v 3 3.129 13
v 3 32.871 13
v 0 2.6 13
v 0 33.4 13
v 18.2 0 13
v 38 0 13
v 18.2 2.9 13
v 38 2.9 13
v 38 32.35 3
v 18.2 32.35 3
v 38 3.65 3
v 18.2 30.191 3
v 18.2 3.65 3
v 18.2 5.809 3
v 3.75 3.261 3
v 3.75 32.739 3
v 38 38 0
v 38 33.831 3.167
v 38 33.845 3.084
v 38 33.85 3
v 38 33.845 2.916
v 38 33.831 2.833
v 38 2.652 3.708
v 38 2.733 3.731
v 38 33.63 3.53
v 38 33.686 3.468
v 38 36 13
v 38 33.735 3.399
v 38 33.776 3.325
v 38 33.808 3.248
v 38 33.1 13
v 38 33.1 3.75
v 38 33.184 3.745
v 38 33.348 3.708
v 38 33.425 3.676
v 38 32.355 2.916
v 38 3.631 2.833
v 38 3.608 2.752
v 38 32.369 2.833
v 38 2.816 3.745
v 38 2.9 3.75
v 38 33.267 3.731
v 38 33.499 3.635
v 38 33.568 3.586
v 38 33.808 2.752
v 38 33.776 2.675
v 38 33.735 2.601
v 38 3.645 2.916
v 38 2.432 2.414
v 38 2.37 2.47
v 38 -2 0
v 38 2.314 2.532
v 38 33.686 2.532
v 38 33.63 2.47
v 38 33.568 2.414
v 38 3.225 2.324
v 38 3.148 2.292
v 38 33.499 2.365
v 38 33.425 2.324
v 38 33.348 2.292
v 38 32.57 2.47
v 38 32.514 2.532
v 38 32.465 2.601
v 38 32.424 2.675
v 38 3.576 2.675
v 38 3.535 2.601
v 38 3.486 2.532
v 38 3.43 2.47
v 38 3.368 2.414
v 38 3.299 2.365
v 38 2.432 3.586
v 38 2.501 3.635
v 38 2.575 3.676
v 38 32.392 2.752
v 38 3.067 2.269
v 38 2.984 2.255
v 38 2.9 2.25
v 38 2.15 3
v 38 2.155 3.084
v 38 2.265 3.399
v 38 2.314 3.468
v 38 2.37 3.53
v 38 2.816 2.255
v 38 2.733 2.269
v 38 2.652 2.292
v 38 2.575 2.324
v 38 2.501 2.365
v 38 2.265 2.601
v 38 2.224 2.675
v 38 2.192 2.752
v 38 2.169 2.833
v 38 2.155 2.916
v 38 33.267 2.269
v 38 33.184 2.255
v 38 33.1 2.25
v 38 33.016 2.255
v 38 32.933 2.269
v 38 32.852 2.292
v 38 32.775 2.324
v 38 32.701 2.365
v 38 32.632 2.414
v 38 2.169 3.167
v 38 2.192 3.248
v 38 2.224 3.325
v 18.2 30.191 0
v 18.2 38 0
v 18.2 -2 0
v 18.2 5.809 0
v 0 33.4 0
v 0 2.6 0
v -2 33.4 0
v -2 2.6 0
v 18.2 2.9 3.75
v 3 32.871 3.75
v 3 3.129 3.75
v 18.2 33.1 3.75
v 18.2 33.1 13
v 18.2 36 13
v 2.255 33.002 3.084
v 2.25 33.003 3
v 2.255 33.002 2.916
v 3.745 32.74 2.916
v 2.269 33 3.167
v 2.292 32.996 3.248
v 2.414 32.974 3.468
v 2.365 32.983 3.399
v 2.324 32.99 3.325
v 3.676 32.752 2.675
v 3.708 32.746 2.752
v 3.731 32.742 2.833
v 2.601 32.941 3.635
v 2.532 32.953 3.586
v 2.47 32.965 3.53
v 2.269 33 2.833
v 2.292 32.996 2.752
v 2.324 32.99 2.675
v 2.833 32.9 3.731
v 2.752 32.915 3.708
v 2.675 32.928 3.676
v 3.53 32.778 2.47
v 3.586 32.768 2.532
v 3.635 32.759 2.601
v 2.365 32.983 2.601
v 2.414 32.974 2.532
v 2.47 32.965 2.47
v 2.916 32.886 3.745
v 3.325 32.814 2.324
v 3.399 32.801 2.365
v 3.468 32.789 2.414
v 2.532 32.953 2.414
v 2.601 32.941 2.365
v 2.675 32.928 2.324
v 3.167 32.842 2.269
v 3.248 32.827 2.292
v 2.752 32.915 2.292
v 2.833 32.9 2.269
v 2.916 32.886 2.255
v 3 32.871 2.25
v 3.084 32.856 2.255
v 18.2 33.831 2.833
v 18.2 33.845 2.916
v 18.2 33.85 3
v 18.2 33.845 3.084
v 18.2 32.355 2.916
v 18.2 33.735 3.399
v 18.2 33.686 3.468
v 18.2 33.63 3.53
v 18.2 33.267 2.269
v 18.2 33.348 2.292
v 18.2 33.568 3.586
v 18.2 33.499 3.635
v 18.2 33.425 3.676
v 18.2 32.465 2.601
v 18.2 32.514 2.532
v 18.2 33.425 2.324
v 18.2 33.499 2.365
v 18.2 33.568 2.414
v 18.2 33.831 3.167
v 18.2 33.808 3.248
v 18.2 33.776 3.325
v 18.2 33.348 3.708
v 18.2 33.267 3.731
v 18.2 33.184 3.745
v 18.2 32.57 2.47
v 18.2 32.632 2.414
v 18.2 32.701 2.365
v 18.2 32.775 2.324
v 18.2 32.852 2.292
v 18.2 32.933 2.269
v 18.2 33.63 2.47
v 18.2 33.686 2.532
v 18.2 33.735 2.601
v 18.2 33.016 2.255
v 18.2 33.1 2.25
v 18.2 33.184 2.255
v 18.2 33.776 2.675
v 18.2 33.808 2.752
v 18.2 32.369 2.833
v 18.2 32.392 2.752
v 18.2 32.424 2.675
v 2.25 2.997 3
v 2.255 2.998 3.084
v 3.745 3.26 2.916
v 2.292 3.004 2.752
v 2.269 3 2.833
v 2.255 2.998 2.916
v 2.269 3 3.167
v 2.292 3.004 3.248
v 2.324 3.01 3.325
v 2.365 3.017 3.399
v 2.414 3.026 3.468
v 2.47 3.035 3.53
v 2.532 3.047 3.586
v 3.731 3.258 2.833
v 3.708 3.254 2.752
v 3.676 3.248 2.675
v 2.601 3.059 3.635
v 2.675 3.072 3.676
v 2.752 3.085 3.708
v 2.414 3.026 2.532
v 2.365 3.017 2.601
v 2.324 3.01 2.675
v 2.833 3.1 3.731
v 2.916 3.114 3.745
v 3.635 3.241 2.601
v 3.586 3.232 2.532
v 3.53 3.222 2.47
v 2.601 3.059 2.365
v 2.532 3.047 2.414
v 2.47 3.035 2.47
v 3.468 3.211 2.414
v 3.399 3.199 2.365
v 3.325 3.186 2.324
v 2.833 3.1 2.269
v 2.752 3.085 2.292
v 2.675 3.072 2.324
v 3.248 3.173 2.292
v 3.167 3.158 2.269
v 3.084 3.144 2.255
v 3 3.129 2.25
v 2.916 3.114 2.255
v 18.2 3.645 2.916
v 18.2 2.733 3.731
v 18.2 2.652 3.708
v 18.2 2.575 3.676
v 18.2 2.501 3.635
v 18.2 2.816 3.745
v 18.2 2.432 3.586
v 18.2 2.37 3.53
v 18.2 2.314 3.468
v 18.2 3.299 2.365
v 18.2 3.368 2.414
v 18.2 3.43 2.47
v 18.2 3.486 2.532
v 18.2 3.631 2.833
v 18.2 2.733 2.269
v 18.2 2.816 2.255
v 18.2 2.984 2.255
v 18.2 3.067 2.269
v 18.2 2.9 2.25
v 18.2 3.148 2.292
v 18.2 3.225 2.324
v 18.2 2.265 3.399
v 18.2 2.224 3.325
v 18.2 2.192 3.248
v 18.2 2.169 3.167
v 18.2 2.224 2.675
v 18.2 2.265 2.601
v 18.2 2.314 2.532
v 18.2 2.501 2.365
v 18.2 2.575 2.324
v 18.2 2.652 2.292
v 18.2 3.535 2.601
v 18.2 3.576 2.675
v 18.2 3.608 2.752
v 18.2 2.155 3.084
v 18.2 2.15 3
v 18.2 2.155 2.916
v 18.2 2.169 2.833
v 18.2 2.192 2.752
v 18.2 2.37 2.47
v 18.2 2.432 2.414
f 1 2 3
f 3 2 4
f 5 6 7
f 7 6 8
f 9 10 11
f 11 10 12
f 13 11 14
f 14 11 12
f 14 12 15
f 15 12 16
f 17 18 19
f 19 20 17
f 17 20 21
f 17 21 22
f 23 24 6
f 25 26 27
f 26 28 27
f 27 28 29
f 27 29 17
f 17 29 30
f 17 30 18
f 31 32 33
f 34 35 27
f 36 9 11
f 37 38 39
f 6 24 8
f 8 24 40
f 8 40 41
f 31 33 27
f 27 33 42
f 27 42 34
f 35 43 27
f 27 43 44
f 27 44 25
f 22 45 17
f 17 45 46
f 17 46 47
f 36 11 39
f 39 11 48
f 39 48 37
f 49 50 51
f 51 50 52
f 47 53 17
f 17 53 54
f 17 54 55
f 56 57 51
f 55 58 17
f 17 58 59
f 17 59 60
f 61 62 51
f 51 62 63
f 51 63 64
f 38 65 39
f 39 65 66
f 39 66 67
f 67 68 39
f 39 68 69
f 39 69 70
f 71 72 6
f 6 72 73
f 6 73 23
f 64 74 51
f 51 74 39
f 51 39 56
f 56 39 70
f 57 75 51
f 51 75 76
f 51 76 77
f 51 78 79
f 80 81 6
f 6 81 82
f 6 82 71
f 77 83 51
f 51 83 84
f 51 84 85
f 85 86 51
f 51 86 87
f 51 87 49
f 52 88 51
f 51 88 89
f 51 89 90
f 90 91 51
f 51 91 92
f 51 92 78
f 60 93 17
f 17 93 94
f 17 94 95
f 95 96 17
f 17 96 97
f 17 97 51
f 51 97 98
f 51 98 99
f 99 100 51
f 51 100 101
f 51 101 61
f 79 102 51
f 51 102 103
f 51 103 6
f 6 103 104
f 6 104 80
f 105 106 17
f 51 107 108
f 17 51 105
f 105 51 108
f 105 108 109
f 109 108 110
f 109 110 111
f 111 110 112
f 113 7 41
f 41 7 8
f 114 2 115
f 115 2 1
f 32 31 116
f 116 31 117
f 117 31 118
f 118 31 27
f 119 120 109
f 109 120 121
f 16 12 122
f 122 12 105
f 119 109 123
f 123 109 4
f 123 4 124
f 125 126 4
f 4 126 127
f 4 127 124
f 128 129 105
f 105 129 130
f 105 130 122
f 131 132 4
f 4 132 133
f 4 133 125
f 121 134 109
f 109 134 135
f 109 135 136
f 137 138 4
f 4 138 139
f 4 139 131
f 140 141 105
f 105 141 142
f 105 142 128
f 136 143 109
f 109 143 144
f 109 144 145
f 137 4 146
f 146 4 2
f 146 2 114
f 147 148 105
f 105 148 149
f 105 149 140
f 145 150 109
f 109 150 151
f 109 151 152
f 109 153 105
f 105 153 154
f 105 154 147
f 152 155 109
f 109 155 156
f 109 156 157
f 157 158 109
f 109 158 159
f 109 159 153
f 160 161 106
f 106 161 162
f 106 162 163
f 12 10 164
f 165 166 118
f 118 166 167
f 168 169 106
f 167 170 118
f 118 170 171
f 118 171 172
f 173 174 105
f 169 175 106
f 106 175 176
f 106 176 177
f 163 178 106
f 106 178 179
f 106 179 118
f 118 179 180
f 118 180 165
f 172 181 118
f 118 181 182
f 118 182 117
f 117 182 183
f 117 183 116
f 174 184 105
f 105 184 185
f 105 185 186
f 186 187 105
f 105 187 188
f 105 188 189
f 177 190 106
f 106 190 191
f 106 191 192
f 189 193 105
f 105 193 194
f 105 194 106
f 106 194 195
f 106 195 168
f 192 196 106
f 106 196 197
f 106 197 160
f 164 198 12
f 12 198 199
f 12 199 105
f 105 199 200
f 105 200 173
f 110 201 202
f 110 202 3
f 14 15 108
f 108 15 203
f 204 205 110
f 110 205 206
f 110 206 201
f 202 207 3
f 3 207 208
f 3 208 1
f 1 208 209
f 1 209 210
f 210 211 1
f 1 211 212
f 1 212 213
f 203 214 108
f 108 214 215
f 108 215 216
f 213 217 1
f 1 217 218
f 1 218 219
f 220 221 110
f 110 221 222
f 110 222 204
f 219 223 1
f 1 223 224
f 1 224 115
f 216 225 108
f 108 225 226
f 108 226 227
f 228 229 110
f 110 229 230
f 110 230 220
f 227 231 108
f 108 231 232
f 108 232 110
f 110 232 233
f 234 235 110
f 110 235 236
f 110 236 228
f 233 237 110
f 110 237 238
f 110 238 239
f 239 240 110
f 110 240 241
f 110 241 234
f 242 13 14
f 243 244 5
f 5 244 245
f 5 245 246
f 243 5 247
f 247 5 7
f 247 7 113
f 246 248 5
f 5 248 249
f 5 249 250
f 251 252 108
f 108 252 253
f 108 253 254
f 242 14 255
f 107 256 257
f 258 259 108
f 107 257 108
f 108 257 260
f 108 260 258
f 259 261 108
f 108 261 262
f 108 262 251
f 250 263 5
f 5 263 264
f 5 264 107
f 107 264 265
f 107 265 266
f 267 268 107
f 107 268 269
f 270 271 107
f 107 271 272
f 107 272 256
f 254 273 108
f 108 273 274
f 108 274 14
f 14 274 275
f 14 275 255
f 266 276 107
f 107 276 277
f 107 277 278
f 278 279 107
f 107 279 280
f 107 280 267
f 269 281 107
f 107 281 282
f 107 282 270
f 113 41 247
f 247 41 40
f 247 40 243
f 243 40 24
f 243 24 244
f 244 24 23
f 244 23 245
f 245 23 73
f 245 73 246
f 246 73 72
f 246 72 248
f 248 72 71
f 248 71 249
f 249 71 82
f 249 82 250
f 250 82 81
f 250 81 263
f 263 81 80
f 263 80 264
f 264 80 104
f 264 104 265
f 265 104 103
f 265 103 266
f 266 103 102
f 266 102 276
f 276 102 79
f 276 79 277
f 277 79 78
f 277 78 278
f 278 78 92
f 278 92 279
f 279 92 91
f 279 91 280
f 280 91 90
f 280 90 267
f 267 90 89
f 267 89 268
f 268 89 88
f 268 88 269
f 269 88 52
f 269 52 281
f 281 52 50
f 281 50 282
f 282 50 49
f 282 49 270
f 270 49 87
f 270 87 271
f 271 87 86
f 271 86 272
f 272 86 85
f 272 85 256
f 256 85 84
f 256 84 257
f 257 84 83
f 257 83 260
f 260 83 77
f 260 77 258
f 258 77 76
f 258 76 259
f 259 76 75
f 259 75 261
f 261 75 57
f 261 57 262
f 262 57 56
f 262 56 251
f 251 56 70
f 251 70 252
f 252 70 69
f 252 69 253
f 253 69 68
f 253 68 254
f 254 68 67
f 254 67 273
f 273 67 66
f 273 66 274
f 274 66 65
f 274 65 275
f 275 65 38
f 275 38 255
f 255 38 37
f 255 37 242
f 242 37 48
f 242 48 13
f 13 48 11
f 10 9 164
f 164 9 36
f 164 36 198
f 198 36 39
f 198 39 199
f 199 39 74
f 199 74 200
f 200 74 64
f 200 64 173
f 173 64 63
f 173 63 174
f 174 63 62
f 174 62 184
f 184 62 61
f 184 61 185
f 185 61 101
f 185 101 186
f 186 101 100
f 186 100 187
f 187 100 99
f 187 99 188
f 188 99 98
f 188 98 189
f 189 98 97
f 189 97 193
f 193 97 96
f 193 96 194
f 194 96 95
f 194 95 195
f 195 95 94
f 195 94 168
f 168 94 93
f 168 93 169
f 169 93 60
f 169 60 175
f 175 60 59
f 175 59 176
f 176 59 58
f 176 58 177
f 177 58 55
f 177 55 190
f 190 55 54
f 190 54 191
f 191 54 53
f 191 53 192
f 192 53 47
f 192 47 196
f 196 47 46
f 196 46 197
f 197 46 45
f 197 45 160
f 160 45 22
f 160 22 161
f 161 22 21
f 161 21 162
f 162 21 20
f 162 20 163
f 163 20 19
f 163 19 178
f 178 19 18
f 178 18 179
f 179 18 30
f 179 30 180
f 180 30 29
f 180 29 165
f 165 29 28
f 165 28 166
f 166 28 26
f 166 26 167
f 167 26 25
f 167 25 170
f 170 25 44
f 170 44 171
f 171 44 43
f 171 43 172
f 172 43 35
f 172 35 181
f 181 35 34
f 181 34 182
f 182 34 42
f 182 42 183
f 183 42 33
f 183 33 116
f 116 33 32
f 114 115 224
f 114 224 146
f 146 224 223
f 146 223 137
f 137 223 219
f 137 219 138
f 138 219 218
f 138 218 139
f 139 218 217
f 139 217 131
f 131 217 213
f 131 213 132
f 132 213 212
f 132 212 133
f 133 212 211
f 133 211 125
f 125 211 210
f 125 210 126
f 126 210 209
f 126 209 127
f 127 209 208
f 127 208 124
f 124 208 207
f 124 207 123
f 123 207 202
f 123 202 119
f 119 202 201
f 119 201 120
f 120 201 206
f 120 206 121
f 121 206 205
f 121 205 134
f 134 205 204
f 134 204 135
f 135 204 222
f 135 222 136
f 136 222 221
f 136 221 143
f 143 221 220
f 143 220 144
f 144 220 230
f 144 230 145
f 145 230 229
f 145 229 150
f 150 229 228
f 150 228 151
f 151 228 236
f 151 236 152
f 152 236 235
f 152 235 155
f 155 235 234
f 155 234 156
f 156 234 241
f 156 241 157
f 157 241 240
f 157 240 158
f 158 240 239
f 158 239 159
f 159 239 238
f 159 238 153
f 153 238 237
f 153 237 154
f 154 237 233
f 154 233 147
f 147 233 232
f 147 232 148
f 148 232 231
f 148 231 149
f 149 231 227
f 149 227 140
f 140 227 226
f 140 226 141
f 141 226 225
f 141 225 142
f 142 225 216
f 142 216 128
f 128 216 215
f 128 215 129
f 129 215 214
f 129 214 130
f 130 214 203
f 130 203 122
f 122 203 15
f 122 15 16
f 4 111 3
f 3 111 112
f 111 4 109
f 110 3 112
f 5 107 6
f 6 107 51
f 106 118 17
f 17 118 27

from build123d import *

# Parameters (mm, degrees)
ESQUISSE1_W                  = 38
ESQUISSE1_H                  = 36
BOSS_EXTRU_1_DEPTH           = 3
BOSS_EXTRU_2_DEPTH           = 10
ENL_V_MAT_EXTRU_1_DEPTH      = 54.935146241
ENL_V_MAT_EXTRU_1_DEPTH_BACK = 54.935146241
ESQUISSE4_R                  = 0.75
ENL_V_MAT_EXTRU_2_DEPTH      = 19.8
ENL_V_MAT_EXTRU_3_DEPTH      = 54.935146241
ENL_V_MAT_EXTRU_3_DEPTH_BACK = 54.935146241
ESQUISSE5_R                  = 0.75
BOSS_EXTRU_3_START           = -2.6
BOSS_EXTRU_3_DEPTH           = 30.8
BOSS_EXTRU_4_START           = -19.8
BOSS_EXTRU_4_DEPTH           = 19.8


with BuildPart() as part:
    # Esquisse1 → Boss.-Extru.1 (new body)
    with BuildSketch(Plane.XY):
        with Locations((19, 18)):
            Rectangle(ESQUISSE1_W, ESQUISSE1_H)
    extrude(amount=BOSS_EXTRU_1_DEPTH)

    # Esquisse2 → Boss.-Extru.2 (add)
    with BuildSketch(Plane.XY.offset(3)):
        Polygon((38, 33.1), (3, 33.1), (3, 2.9), (38, 2.9), (38, 0), (0, 0), (0, 36), (38, 36), align=None)
    extrude(amount=BOSS_EXTRU_2_DEPTH)

    # Esquisse3 → Enlèv. mat.-Extru.1 (cut, two sides: drawn at the far end of the back side and taken through both)
    with BuildSketch(Plane(origin=(0, 0, 0), x_dir=(-1, 0, 0), z_dir=(0, 0, -1)).offset(-ENL_V_MAT_EXTRU_1_DEPTH_BACK)):
        Polygon((0, 2.6), (0, 0), (-18.2, 0), (-18.2, 5.809151049), align=None)
        Polygon((-18.2, 36), (-18.2, 30.190848951), (0, 33.4), (0, 36), align=None)
    extrude(amount=ENL_V_MAT_EXTRU_1_DEPTH + ENL_V_MAT_EXTRU_1_DEPTH_BACK, mode=Mode.SUBTRACT)

    # Esquisse4 → Enlèv. mat.-Extru.2 (cut)
    with BuildSketch(Plane(origin=(38, 0, 0), x_dir=(0, 0, -1), z_dir=(1, 0, 0))):
        with Locations((-3, 2.9)):
            Circle(ESQUISSE4_R)
        with Locations((-3, 33.1)):
            Circle(ESQUISSE4_R)
    extrude(amount=-ENL_V_MAT_EXTRU_2_DEPTH, mode=Mode.SUBTRACT)

    # Esquisse5 → Enlèv. mat.-Extru.3 (cut, two sides: drawn at the far end of the back side and taken through both)
    with BuildSketch(Plane.XZ.offset(-ENL_V_MAT_EXTRU_3_DEPTH_BACK)):
        with Locations((3, 3)):
            Circle(ESQUISSE5_R)
    extrude(amount=ENL_V_MAT_EXTRU_3_DEPTH + ENL_V_MAT_EXTRU_3_DEPTH_BACK, mode=Mode.SUBTRACT)

    # Esquisse6 → Boss.-Extru.3 (add)
    with BuildSketch(Plane.XZ.offset(BOSS_EXTRU_3_START)):
        Polygon((0, 0), (0, 13), (-2, 0), align=None)
    extrude(amount=-BOSS_EXTRU_3_DEPTH)

    # Esquisse7 → Boss.-Extru.4 (add)
    with BuildSketch(Plane(origin=(38, 0, 0), x_dir=(0, 0, -1), z_dir=(1, 0, 0)).offset(BOSS_EXTRU_4_START)):
        Polygon((0, 0), (-13, 0), (0, -2), align=None)
        Polygon((0, 38), (0, 36), (-13, 36), align=None)
    extrude(amount=BOSS_EXTRU_4_DEPTH)


solid = part.part
